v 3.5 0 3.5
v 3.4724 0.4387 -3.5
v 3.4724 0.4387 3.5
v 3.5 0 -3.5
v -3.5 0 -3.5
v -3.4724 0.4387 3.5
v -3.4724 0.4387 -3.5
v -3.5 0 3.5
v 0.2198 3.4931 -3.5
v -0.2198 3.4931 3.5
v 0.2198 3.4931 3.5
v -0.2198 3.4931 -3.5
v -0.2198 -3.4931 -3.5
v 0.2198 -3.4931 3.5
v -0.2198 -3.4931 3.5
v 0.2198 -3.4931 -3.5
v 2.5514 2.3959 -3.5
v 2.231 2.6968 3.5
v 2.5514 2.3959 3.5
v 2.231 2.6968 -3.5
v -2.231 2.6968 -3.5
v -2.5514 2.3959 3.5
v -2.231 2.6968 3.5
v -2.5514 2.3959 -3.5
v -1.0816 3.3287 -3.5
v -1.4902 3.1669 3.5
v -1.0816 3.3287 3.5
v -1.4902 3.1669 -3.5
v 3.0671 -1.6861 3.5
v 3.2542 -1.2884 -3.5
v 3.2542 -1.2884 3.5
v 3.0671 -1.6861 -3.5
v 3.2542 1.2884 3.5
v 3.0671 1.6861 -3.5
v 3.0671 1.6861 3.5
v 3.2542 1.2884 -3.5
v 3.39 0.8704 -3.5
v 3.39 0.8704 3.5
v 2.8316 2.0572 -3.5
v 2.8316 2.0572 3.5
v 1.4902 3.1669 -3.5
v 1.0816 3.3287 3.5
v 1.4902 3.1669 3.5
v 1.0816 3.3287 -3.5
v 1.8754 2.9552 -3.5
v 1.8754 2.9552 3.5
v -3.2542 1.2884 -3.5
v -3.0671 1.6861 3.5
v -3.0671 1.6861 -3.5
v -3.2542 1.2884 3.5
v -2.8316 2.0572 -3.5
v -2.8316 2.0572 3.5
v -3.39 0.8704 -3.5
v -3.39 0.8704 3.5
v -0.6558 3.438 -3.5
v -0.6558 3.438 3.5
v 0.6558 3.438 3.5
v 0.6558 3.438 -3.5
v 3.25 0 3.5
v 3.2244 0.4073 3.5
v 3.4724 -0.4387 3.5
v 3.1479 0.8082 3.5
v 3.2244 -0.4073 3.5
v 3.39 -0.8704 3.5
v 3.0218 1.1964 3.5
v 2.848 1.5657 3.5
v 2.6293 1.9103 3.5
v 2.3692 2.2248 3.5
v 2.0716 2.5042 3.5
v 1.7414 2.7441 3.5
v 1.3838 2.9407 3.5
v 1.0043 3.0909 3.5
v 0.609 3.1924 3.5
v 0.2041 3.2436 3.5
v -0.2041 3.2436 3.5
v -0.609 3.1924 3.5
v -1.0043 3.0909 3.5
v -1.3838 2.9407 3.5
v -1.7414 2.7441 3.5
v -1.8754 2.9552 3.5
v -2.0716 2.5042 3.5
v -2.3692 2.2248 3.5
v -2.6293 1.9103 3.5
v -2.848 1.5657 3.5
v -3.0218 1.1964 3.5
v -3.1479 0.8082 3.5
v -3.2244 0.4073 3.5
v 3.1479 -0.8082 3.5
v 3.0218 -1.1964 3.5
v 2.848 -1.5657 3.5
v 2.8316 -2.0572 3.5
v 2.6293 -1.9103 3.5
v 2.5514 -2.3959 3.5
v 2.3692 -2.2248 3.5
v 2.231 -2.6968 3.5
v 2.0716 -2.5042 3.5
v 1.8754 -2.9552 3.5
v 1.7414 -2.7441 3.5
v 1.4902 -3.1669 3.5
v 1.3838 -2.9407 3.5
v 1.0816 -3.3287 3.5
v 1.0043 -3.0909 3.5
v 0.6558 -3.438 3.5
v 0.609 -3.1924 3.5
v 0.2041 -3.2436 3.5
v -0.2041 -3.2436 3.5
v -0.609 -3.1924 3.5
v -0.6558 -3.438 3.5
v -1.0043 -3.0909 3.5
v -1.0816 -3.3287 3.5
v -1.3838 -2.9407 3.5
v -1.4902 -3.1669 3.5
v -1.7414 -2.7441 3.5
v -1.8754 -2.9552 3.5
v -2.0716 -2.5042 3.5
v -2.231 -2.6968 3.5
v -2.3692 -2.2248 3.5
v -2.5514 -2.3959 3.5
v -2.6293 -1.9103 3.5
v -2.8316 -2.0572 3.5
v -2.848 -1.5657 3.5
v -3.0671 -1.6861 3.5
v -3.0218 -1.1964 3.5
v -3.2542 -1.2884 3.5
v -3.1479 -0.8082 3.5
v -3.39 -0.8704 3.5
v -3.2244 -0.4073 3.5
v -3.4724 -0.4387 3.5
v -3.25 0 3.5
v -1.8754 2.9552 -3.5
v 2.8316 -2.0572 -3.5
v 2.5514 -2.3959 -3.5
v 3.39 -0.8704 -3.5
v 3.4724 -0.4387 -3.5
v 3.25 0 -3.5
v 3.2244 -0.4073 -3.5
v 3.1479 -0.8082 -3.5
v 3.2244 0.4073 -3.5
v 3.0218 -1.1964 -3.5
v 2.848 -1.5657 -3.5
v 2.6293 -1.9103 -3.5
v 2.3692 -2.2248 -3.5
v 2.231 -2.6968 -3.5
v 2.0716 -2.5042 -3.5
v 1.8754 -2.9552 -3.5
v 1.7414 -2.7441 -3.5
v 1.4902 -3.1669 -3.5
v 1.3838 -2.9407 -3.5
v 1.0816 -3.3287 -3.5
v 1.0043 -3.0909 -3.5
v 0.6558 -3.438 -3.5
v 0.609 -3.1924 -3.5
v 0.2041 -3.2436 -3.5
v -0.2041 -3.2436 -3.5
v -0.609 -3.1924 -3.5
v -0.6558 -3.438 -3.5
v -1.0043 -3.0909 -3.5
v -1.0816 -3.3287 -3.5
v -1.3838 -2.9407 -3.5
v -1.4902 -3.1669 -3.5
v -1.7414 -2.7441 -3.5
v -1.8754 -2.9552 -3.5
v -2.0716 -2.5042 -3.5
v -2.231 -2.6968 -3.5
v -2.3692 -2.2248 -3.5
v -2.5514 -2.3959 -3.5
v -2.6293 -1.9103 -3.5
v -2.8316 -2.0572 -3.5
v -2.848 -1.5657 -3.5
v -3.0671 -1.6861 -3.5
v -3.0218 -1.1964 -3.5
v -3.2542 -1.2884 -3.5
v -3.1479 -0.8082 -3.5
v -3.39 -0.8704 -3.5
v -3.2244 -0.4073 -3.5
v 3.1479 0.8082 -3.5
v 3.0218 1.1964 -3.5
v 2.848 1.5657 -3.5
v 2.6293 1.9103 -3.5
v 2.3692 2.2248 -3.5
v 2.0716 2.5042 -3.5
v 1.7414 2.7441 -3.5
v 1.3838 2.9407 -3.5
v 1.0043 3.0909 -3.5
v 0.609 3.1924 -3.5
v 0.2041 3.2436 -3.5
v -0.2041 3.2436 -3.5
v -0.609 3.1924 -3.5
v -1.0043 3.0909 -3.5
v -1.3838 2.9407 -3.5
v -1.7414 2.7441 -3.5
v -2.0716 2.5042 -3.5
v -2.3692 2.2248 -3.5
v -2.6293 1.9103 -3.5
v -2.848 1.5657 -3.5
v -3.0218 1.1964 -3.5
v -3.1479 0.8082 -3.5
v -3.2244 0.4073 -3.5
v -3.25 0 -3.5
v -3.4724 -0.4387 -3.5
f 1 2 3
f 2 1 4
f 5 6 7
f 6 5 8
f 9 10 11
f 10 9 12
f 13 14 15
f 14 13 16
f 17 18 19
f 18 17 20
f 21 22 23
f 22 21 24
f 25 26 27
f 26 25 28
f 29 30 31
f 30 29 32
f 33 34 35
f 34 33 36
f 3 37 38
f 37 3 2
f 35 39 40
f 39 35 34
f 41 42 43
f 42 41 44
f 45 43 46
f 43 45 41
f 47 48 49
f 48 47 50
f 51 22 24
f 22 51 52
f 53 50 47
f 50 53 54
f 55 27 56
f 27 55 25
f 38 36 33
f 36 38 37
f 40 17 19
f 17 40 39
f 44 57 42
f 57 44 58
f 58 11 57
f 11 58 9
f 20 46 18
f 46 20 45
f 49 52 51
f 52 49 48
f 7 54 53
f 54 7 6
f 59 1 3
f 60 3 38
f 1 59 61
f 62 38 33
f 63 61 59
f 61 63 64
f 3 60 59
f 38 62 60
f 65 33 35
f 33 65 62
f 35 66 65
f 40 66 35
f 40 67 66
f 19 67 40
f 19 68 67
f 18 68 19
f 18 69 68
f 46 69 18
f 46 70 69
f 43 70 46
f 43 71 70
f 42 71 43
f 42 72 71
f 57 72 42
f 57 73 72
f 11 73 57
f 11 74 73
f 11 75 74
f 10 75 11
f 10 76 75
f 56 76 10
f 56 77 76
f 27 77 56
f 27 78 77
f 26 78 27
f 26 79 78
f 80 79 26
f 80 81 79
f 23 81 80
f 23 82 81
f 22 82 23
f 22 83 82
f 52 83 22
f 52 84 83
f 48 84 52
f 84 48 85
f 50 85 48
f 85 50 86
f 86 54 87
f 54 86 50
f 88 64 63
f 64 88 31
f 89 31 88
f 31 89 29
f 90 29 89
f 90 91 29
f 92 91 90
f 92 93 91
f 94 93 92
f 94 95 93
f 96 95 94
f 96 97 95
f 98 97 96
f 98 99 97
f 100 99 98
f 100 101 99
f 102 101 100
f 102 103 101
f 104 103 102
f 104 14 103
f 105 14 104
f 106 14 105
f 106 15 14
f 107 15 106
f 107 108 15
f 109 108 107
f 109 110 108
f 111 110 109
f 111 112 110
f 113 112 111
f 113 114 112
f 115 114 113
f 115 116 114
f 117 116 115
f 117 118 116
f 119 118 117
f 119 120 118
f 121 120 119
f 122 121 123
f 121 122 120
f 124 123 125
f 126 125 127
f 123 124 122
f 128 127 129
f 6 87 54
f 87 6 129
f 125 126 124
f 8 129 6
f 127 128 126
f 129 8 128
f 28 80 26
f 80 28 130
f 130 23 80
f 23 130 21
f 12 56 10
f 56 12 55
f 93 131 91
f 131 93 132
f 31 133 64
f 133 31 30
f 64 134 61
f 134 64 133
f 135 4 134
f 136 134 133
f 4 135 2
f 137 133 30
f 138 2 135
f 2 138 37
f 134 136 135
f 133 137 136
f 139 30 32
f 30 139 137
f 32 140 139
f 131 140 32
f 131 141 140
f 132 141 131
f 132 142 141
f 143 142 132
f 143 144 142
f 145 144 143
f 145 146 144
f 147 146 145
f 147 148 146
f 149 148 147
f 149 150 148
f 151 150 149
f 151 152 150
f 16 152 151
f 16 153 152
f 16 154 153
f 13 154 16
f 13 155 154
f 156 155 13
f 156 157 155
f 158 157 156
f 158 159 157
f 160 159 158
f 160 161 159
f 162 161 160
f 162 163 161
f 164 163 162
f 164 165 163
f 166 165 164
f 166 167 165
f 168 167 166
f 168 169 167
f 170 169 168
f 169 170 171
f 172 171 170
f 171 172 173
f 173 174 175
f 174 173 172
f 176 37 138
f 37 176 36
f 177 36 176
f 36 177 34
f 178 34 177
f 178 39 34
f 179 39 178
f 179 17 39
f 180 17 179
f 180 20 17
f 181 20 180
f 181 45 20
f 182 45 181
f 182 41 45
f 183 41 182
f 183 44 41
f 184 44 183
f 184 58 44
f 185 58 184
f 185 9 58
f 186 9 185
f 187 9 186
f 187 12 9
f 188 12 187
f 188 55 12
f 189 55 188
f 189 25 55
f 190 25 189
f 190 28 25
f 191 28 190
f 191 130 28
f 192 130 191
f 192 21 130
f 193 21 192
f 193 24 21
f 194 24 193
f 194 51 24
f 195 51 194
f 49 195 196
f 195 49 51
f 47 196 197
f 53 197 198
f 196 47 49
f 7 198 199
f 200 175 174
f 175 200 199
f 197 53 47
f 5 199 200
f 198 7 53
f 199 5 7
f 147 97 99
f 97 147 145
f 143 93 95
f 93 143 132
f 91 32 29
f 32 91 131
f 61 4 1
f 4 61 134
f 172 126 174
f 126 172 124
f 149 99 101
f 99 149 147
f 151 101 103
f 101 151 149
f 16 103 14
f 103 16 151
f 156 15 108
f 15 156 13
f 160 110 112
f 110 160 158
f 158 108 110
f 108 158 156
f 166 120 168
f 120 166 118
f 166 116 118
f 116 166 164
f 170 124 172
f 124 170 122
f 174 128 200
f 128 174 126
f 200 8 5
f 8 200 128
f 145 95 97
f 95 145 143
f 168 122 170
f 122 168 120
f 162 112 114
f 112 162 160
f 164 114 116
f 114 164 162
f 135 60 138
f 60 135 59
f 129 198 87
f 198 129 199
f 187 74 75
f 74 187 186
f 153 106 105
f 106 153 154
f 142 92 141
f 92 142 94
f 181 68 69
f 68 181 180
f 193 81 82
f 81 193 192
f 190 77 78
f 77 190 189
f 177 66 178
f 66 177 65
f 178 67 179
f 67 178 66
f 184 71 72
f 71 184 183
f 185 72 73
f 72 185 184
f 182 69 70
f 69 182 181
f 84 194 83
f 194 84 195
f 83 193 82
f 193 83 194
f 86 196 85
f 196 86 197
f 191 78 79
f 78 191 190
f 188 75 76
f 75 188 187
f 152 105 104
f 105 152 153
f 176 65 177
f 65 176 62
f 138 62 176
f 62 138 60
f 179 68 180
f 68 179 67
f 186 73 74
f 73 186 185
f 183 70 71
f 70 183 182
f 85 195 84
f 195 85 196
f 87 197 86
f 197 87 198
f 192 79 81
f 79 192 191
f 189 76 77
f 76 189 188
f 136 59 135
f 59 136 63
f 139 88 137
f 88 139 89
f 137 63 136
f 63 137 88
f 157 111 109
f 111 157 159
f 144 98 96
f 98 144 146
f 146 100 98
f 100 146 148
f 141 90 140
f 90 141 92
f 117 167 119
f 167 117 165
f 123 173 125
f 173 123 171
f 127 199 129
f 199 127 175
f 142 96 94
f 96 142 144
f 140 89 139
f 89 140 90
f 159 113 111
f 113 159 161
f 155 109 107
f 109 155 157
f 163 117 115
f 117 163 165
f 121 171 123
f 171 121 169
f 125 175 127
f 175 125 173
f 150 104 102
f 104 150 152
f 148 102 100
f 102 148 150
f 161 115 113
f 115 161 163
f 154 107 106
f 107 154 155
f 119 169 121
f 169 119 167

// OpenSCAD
$fn = 50;


difference() {
	union() {
		translate(v = [0, 0, -3.5000000000]) {
			cylinder(h = 7, r = 3.5000000000);
		}
	}
	union() {
		translate(v = [0, 0, -100.0000000000]) {
			cylinder(h = 200, r = 3.2500000000);
		}
	}
}
